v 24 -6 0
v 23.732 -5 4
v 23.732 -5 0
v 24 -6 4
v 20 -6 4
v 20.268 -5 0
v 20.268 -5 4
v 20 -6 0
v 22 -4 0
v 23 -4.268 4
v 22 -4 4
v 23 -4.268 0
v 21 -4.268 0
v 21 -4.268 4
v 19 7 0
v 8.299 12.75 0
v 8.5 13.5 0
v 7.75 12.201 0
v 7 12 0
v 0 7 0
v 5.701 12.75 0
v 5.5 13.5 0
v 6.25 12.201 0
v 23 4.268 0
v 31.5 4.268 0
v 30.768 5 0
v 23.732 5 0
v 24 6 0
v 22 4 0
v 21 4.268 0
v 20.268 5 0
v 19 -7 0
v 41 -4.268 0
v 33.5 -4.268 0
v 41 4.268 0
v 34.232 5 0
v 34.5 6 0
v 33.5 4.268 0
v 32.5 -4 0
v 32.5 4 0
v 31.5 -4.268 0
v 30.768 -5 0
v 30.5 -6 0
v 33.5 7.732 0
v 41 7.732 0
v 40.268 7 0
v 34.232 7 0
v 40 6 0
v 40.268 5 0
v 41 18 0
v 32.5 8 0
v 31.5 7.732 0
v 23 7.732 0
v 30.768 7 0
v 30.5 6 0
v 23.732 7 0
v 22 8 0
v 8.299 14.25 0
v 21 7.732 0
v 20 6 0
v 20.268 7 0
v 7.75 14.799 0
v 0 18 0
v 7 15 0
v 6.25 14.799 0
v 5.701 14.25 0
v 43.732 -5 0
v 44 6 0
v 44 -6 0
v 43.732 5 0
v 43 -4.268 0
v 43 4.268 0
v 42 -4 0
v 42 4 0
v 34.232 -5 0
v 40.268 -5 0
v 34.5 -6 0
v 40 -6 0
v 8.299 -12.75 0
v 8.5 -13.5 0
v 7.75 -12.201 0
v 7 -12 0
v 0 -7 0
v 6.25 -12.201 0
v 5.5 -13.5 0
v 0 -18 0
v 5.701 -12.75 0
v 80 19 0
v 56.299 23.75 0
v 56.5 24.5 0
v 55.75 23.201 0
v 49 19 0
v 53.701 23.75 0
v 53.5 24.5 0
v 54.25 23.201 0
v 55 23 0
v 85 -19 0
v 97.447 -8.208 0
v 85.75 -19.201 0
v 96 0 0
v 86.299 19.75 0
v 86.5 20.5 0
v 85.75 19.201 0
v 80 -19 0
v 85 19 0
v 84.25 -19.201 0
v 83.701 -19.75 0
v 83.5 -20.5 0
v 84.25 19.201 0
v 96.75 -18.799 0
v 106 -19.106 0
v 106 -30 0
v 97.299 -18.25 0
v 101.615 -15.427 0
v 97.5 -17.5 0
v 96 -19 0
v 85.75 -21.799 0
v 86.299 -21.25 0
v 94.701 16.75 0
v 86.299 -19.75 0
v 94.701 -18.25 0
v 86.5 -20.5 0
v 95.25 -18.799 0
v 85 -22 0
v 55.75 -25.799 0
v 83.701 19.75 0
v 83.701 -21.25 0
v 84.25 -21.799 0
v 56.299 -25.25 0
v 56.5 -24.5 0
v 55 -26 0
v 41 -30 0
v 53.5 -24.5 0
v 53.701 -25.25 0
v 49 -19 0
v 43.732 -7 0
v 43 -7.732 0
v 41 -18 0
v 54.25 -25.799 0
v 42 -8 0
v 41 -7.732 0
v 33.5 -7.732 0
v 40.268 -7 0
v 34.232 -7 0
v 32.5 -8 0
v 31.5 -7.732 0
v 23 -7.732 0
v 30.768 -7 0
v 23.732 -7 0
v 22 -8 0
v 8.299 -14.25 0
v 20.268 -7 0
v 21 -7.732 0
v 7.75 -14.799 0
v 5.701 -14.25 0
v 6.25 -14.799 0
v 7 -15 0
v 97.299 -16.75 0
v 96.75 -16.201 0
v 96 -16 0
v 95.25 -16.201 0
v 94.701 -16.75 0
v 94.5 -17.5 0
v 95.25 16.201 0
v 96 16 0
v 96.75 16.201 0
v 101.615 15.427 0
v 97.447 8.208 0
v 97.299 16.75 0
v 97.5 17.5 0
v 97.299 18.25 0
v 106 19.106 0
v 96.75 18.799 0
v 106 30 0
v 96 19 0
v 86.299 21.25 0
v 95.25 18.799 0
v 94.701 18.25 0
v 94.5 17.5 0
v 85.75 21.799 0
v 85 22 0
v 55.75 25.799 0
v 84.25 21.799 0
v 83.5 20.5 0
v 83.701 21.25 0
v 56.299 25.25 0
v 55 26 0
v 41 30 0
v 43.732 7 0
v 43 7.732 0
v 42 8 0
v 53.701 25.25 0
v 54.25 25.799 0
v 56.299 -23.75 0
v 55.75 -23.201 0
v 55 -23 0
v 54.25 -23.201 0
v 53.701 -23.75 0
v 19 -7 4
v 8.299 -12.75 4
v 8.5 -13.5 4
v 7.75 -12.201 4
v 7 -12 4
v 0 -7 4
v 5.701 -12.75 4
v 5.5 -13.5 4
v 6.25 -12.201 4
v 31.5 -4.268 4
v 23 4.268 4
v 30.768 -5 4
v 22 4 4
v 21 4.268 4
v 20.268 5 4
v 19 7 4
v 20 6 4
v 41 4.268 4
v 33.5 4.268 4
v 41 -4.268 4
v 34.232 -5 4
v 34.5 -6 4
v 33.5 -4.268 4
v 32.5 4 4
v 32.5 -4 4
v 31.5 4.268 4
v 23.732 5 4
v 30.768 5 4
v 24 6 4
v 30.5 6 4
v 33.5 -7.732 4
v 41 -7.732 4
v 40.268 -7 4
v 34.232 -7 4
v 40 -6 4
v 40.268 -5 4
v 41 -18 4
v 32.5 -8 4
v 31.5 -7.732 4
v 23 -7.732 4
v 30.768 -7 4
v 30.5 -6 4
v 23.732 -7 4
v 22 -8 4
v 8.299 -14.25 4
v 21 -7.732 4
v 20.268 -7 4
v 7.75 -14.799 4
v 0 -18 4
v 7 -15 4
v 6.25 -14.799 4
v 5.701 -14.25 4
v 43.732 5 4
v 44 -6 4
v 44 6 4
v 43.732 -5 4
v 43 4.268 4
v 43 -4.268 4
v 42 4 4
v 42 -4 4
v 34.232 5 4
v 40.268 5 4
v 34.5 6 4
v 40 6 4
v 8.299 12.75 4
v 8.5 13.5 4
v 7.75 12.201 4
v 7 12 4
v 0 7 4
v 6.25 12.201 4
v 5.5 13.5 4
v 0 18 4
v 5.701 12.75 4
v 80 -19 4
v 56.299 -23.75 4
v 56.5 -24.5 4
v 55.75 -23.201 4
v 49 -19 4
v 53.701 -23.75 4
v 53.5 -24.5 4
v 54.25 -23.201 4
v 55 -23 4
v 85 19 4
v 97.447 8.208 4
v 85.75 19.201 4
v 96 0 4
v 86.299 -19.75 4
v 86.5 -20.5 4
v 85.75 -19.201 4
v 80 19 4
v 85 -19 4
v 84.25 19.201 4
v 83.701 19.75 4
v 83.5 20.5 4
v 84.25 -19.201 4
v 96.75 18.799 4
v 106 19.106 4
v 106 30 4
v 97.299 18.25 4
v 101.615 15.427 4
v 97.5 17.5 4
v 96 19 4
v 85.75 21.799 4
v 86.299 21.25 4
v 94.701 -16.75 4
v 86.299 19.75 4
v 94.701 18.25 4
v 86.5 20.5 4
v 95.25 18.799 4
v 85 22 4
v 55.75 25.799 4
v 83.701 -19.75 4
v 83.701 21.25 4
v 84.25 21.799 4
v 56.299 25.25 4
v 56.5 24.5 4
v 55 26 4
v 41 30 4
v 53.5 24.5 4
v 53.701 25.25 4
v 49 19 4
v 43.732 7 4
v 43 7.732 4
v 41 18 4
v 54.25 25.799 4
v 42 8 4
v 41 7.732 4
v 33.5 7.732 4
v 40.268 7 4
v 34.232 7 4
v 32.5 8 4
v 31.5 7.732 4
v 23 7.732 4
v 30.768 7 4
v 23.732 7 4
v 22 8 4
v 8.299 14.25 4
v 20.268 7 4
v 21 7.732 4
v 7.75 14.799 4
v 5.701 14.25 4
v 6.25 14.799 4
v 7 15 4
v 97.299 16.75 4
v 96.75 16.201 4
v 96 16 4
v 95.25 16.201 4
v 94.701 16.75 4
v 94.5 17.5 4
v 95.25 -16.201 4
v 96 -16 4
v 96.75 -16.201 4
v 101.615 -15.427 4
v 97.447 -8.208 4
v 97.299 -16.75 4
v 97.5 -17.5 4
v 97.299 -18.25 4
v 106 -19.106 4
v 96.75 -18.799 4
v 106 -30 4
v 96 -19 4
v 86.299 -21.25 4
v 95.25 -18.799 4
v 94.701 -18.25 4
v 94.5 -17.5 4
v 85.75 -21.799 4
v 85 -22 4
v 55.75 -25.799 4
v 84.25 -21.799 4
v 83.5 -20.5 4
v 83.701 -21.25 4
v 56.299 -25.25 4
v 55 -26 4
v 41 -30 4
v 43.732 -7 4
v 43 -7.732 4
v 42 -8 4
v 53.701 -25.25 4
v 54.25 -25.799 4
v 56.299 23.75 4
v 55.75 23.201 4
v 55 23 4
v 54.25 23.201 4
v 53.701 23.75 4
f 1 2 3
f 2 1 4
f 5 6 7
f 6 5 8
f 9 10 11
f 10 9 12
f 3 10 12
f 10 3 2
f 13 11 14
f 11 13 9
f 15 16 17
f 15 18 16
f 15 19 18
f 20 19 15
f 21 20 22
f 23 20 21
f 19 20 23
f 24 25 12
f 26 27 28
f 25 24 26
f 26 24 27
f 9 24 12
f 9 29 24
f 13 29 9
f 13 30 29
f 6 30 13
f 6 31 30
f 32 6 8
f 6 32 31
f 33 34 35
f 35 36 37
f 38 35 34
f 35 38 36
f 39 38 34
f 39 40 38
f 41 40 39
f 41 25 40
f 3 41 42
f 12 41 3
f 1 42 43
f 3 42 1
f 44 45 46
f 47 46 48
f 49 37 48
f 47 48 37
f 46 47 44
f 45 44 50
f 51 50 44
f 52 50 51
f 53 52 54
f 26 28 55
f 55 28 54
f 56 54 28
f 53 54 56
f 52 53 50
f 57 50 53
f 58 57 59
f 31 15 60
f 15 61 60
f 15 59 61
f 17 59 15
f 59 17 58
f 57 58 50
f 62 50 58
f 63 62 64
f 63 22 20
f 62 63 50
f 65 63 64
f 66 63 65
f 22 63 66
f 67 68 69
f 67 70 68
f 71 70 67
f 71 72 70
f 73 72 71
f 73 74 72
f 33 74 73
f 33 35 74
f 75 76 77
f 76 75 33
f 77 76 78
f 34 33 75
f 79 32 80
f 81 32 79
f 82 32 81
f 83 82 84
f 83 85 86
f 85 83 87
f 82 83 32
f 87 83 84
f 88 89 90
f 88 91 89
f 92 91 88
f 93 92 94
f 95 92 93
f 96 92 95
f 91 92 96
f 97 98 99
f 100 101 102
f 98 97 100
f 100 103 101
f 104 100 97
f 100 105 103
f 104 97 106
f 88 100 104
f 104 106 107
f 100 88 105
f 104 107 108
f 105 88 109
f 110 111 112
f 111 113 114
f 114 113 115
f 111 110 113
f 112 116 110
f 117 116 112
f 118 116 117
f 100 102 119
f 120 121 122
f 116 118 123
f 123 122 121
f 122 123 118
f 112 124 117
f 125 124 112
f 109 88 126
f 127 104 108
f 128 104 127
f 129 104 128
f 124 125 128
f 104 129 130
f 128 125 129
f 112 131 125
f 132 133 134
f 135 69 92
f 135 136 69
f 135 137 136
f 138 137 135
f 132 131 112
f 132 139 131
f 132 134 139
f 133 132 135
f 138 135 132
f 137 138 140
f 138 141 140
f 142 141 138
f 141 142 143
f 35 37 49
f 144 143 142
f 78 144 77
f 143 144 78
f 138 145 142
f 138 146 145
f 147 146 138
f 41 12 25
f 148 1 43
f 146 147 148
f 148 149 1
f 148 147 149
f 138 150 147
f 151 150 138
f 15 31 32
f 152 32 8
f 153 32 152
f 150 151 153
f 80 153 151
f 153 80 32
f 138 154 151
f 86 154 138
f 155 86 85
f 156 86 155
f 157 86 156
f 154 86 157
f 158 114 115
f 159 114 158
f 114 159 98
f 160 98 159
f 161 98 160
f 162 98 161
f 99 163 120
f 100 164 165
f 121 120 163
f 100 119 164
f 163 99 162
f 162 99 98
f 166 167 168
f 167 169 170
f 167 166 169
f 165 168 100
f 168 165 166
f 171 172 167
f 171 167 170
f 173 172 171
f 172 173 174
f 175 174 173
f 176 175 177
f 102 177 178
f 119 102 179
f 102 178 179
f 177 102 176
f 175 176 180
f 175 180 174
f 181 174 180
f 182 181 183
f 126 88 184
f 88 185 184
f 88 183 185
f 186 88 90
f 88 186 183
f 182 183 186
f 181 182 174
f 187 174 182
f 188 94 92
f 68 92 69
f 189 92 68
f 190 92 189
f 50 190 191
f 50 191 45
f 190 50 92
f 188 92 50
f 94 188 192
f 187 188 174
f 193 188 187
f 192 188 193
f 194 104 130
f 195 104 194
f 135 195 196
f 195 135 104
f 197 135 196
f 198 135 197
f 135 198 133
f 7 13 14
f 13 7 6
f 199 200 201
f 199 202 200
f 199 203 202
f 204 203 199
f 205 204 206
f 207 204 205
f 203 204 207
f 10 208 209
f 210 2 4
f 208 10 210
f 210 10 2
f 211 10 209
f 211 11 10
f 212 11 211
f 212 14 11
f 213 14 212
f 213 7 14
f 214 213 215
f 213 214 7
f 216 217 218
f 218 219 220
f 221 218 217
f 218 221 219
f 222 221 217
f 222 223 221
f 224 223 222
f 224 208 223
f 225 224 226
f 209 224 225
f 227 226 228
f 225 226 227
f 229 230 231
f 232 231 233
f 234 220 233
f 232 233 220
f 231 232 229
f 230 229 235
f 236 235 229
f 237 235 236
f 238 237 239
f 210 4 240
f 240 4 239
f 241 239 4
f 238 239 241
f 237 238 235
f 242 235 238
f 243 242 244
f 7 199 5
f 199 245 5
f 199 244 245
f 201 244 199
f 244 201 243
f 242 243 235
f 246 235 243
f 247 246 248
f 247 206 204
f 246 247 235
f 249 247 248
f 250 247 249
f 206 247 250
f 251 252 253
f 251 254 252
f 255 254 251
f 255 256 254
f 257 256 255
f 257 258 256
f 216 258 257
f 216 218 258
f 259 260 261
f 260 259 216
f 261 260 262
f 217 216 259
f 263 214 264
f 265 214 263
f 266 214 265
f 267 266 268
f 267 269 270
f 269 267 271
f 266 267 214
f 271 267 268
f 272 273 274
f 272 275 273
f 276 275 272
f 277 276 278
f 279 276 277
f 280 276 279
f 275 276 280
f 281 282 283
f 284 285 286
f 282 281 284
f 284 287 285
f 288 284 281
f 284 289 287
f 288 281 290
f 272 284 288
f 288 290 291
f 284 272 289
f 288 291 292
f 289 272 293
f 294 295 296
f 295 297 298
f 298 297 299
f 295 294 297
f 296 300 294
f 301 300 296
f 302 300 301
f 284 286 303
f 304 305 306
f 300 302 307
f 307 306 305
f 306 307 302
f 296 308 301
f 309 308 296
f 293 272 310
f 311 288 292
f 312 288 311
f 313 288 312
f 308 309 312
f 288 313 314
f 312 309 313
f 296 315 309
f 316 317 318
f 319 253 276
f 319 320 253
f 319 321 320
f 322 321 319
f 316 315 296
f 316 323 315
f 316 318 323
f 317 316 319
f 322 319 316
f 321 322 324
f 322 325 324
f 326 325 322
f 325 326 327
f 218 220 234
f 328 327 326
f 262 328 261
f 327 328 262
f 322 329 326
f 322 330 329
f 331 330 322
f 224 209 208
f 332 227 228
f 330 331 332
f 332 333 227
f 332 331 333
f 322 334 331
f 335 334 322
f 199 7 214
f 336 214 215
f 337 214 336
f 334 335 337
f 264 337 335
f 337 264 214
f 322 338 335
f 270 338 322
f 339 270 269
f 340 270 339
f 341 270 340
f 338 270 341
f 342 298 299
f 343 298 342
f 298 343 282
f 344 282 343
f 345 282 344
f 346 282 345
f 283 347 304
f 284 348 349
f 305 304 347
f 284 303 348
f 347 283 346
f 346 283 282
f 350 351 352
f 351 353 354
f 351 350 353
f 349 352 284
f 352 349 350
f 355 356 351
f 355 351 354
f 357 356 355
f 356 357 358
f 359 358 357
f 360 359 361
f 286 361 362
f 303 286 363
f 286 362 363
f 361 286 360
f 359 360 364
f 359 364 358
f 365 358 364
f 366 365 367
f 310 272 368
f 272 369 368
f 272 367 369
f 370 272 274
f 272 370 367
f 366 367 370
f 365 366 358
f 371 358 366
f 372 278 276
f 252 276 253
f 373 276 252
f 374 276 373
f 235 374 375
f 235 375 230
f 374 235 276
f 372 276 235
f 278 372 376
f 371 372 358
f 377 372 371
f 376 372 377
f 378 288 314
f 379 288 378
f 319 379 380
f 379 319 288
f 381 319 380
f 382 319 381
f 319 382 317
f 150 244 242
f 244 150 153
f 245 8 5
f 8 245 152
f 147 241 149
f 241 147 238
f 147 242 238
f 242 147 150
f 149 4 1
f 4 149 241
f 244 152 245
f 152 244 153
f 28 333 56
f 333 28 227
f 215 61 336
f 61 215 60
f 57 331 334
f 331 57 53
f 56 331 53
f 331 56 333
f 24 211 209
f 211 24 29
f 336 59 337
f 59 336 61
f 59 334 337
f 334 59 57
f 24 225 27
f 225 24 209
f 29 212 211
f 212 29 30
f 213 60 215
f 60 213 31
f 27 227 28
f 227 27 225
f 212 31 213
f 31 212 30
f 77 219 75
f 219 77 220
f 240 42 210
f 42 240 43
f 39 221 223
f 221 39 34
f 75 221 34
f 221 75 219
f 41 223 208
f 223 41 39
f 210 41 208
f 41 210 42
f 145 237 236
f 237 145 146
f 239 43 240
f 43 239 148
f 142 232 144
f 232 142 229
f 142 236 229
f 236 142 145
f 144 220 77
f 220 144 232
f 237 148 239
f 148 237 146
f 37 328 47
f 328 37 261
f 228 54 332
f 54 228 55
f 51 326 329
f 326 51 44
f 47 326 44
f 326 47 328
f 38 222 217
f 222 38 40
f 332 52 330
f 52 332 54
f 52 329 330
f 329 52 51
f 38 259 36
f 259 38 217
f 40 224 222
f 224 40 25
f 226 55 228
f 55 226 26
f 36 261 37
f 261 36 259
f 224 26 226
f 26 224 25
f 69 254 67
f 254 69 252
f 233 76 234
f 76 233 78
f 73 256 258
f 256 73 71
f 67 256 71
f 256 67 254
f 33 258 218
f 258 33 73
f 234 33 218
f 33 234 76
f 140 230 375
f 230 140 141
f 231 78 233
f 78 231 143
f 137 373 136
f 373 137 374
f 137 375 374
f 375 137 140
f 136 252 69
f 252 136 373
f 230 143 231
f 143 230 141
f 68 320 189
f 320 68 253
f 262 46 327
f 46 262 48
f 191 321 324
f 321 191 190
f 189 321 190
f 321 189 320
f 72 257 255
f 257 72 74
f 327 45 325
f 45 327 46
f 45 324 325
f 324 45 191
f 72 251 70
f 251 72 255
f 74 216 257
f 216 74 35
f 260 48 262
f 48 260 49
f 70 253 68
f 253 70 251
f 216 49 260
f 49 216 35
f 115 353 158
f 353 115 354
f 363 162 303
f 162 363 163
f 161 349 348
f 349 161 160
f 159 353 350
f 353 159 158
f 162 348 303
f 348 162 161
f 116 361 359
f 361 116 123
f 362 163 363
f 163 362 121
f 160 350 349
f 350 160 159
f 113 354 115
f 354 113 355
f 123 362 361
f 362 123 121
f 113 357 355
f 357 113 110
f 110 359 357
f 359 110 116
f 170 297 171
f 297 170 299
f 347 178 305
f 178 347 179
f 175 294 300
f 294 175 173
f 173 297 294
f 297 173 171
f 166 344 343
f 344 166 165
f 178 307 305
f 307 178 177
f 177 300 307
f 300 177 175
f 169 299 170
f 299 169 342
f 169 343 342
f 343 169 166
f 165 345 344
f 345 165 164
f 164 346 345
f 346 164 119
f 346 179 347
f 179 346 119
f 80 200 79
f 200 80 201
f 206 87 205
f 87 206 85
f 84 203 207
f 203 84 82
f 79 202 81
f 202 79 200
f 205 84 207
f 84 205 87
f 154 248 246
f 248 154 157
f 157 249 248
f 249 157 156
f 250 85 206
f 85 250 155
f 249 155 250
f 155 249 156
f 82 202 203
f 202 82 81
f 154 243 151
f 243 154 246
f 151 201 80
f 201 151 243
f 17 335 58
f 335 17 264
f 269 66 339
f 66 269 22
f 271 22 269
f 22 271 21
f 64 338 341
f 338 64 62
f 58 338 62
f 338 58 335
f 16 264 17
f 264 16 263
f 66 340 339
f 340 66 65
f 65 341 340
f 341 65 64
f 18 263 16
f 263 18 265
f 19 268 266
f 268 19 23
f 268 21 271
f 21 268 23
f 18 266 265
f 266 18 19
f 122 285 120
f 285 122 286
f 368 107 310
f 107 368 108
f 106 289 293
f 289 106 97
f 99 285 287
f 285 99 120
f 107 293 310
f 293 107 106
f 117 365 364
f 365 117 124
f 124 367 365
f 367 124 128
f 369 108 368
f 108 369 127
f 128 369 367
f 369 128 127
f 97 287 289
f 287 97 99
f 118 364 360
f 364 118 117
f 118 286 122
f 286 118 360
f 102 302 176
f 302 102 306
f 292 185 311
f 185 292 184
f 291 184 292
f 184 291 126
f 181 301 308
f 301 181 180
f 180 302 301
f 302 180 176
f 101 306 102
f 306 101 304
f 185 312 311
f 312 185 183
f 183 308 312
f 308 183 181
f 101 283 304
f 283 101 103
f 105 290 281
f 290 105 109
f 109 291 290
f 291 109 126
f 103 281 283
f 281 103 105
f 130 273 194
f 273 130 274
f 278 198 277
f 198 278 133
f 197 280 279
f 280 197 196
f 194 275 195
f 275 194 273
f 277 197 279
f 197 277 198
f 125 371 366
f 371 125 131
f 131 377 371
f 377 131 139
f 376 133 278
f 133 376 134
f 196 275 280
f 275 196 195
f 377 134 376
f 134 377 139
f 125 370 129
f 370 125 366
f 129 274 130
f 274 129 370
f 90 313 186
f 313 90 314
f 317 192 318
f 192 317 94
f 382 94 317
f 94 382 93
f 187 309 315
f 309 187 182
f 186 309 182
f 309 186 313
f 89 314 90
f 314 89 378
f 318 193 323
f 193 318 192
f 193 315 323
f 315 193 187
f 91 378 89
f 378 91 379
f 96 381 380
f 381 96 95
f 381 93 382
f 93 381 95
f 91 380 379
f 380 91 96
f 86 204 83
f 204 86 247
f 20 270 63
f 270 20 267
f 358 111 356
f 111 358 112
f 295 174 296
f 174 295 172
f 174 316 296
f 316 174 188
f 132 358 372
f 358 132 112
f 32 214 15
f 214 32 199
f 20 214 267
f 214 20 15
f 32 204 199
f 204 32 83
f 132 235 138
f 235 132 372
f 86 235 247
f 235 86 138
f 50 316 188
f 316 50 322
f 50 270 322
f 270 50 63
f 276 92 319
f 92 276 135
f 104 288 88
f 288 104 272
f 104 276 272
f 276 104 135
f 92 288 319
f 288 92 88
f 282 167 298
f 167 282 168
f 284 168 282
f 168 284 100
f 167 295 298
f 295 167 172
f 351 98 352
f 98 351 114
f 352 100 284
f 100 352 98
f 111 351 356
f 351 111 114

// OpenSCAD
// NejeMaster2 FanHolder
// 2020-10-24 V1

$t =   4;  // base dicke
$l = 106;  // base laenge
$b =  60;  // base breite
$cl = 41;  // corner laenge
$cb = 12;  // corner breite
$pl = 19;  // plug laenge
$pb = 14;  // plug breite
$io = 49;  // inner oberhalb
$il = 31;  // inner laenge
$ib = 38;  // inner breite
$fo = 96;  // fan oberhalb
$fr = 24;  // fan radius

$hl1 = 22;  // hole laser oben
$hl2 = 32.5;// hole laser oben
$hl3 = 42;  // hole laser oben
$hlr =  2;  // hole laser radius
$hlg =  8;  // hole laser abstand
$hfo = 96;  // hole fan oben
$hfr =  1.5;// hole fan radius
$hfg = 32;  // hole fan abstand
$hto =  7;  // hole top oben
$htr =  1.5;// hole top radius
$htg = 24;  // hole top abstand
$hdo = 85;  // hole down oben
$hdr =  1.5;// hole down radius
$hdg = 38;  // hole down abstand
$hso = 55;  // hole side oben
$hsr =  1.5;// hole side radius
$hsg = 46;  // hole side abstand

// remove comment for dxf
// projection()

difference() {
 mBase();
 mPlug();
 mCorner(0);
 mCorner(1);
 mInner();
 mFan();
 // hole laser
 translate([$hl1,0,0])
  union() {
   mHole(0,$hlr,$hlg);
   mHole(1,$hlr,$hlg);
 }
 translate([$hl2,0,0])
  union() {
   mHole(0,$hlr,$hlg);
   mHole(1,$hlr,$hlg);
 }
 translate([$hl3,0,0])
  union() {
   mHole(0,$hlr,$hlg);
   mHole(1,$hlr,$hlg);
 }
 // hole fan
 translate([$hfo,0,0])
  union() {
   mHole(0,$hfr,$hfg);
   mHole(1,$hfr,$hfg);
 }
 // hole top
 translate([$hto,0,0])
  union() {
   mHole(0,$htr,$htg);
   mHole(1,$htr,$htg);
 }
 // hole down
 translate([$hdo,0,0])
  union() {
   mHole(0,$hdr,$hdg);
   mHole(1,$hdr,$hdg);
 }
 // hole side
 translate([$hso,0,0])
  union() {
   mHole(0,$hsr,$hsg);
   mHole(1,$hsr,$hsg);
 }
}

module mHole($p=0,$r,$g) {
 if($p==0){
  translate([0,-$r-$g/2,0])
   cylinder(h=$t,r=$r,$fn=12);
 } else {
  translate([0,$r+$g/2,0])
   cylinder(h=$t,r=$r,$fn=12);
 }
}

module mCorner($p=0) {
 if($p==0){
  translate([0,-$b/2,0])
   cube([$cl,$cb,$t]);
 } else {
  translate([0,$b/2-$cb,0])
   cube([$cl,$cb,$t]);
 }
}

module mFan() {
 translate([$fr+$fo,0,0])
  cylinder(h=$t,r=$fr,$fn=18);
}

module mInner() {
 translate([$io,-$ib/2,0])
  cube([$il,$ib,$t]);
}

module mPlug() {
 translate([0,-$pb/2,0])
  cube([$pl,$pb,$t]);
}

module mBase() {
 color("red")
 translate([0,-$b/2,0])
  cube([$l,$b,$t]);
}
